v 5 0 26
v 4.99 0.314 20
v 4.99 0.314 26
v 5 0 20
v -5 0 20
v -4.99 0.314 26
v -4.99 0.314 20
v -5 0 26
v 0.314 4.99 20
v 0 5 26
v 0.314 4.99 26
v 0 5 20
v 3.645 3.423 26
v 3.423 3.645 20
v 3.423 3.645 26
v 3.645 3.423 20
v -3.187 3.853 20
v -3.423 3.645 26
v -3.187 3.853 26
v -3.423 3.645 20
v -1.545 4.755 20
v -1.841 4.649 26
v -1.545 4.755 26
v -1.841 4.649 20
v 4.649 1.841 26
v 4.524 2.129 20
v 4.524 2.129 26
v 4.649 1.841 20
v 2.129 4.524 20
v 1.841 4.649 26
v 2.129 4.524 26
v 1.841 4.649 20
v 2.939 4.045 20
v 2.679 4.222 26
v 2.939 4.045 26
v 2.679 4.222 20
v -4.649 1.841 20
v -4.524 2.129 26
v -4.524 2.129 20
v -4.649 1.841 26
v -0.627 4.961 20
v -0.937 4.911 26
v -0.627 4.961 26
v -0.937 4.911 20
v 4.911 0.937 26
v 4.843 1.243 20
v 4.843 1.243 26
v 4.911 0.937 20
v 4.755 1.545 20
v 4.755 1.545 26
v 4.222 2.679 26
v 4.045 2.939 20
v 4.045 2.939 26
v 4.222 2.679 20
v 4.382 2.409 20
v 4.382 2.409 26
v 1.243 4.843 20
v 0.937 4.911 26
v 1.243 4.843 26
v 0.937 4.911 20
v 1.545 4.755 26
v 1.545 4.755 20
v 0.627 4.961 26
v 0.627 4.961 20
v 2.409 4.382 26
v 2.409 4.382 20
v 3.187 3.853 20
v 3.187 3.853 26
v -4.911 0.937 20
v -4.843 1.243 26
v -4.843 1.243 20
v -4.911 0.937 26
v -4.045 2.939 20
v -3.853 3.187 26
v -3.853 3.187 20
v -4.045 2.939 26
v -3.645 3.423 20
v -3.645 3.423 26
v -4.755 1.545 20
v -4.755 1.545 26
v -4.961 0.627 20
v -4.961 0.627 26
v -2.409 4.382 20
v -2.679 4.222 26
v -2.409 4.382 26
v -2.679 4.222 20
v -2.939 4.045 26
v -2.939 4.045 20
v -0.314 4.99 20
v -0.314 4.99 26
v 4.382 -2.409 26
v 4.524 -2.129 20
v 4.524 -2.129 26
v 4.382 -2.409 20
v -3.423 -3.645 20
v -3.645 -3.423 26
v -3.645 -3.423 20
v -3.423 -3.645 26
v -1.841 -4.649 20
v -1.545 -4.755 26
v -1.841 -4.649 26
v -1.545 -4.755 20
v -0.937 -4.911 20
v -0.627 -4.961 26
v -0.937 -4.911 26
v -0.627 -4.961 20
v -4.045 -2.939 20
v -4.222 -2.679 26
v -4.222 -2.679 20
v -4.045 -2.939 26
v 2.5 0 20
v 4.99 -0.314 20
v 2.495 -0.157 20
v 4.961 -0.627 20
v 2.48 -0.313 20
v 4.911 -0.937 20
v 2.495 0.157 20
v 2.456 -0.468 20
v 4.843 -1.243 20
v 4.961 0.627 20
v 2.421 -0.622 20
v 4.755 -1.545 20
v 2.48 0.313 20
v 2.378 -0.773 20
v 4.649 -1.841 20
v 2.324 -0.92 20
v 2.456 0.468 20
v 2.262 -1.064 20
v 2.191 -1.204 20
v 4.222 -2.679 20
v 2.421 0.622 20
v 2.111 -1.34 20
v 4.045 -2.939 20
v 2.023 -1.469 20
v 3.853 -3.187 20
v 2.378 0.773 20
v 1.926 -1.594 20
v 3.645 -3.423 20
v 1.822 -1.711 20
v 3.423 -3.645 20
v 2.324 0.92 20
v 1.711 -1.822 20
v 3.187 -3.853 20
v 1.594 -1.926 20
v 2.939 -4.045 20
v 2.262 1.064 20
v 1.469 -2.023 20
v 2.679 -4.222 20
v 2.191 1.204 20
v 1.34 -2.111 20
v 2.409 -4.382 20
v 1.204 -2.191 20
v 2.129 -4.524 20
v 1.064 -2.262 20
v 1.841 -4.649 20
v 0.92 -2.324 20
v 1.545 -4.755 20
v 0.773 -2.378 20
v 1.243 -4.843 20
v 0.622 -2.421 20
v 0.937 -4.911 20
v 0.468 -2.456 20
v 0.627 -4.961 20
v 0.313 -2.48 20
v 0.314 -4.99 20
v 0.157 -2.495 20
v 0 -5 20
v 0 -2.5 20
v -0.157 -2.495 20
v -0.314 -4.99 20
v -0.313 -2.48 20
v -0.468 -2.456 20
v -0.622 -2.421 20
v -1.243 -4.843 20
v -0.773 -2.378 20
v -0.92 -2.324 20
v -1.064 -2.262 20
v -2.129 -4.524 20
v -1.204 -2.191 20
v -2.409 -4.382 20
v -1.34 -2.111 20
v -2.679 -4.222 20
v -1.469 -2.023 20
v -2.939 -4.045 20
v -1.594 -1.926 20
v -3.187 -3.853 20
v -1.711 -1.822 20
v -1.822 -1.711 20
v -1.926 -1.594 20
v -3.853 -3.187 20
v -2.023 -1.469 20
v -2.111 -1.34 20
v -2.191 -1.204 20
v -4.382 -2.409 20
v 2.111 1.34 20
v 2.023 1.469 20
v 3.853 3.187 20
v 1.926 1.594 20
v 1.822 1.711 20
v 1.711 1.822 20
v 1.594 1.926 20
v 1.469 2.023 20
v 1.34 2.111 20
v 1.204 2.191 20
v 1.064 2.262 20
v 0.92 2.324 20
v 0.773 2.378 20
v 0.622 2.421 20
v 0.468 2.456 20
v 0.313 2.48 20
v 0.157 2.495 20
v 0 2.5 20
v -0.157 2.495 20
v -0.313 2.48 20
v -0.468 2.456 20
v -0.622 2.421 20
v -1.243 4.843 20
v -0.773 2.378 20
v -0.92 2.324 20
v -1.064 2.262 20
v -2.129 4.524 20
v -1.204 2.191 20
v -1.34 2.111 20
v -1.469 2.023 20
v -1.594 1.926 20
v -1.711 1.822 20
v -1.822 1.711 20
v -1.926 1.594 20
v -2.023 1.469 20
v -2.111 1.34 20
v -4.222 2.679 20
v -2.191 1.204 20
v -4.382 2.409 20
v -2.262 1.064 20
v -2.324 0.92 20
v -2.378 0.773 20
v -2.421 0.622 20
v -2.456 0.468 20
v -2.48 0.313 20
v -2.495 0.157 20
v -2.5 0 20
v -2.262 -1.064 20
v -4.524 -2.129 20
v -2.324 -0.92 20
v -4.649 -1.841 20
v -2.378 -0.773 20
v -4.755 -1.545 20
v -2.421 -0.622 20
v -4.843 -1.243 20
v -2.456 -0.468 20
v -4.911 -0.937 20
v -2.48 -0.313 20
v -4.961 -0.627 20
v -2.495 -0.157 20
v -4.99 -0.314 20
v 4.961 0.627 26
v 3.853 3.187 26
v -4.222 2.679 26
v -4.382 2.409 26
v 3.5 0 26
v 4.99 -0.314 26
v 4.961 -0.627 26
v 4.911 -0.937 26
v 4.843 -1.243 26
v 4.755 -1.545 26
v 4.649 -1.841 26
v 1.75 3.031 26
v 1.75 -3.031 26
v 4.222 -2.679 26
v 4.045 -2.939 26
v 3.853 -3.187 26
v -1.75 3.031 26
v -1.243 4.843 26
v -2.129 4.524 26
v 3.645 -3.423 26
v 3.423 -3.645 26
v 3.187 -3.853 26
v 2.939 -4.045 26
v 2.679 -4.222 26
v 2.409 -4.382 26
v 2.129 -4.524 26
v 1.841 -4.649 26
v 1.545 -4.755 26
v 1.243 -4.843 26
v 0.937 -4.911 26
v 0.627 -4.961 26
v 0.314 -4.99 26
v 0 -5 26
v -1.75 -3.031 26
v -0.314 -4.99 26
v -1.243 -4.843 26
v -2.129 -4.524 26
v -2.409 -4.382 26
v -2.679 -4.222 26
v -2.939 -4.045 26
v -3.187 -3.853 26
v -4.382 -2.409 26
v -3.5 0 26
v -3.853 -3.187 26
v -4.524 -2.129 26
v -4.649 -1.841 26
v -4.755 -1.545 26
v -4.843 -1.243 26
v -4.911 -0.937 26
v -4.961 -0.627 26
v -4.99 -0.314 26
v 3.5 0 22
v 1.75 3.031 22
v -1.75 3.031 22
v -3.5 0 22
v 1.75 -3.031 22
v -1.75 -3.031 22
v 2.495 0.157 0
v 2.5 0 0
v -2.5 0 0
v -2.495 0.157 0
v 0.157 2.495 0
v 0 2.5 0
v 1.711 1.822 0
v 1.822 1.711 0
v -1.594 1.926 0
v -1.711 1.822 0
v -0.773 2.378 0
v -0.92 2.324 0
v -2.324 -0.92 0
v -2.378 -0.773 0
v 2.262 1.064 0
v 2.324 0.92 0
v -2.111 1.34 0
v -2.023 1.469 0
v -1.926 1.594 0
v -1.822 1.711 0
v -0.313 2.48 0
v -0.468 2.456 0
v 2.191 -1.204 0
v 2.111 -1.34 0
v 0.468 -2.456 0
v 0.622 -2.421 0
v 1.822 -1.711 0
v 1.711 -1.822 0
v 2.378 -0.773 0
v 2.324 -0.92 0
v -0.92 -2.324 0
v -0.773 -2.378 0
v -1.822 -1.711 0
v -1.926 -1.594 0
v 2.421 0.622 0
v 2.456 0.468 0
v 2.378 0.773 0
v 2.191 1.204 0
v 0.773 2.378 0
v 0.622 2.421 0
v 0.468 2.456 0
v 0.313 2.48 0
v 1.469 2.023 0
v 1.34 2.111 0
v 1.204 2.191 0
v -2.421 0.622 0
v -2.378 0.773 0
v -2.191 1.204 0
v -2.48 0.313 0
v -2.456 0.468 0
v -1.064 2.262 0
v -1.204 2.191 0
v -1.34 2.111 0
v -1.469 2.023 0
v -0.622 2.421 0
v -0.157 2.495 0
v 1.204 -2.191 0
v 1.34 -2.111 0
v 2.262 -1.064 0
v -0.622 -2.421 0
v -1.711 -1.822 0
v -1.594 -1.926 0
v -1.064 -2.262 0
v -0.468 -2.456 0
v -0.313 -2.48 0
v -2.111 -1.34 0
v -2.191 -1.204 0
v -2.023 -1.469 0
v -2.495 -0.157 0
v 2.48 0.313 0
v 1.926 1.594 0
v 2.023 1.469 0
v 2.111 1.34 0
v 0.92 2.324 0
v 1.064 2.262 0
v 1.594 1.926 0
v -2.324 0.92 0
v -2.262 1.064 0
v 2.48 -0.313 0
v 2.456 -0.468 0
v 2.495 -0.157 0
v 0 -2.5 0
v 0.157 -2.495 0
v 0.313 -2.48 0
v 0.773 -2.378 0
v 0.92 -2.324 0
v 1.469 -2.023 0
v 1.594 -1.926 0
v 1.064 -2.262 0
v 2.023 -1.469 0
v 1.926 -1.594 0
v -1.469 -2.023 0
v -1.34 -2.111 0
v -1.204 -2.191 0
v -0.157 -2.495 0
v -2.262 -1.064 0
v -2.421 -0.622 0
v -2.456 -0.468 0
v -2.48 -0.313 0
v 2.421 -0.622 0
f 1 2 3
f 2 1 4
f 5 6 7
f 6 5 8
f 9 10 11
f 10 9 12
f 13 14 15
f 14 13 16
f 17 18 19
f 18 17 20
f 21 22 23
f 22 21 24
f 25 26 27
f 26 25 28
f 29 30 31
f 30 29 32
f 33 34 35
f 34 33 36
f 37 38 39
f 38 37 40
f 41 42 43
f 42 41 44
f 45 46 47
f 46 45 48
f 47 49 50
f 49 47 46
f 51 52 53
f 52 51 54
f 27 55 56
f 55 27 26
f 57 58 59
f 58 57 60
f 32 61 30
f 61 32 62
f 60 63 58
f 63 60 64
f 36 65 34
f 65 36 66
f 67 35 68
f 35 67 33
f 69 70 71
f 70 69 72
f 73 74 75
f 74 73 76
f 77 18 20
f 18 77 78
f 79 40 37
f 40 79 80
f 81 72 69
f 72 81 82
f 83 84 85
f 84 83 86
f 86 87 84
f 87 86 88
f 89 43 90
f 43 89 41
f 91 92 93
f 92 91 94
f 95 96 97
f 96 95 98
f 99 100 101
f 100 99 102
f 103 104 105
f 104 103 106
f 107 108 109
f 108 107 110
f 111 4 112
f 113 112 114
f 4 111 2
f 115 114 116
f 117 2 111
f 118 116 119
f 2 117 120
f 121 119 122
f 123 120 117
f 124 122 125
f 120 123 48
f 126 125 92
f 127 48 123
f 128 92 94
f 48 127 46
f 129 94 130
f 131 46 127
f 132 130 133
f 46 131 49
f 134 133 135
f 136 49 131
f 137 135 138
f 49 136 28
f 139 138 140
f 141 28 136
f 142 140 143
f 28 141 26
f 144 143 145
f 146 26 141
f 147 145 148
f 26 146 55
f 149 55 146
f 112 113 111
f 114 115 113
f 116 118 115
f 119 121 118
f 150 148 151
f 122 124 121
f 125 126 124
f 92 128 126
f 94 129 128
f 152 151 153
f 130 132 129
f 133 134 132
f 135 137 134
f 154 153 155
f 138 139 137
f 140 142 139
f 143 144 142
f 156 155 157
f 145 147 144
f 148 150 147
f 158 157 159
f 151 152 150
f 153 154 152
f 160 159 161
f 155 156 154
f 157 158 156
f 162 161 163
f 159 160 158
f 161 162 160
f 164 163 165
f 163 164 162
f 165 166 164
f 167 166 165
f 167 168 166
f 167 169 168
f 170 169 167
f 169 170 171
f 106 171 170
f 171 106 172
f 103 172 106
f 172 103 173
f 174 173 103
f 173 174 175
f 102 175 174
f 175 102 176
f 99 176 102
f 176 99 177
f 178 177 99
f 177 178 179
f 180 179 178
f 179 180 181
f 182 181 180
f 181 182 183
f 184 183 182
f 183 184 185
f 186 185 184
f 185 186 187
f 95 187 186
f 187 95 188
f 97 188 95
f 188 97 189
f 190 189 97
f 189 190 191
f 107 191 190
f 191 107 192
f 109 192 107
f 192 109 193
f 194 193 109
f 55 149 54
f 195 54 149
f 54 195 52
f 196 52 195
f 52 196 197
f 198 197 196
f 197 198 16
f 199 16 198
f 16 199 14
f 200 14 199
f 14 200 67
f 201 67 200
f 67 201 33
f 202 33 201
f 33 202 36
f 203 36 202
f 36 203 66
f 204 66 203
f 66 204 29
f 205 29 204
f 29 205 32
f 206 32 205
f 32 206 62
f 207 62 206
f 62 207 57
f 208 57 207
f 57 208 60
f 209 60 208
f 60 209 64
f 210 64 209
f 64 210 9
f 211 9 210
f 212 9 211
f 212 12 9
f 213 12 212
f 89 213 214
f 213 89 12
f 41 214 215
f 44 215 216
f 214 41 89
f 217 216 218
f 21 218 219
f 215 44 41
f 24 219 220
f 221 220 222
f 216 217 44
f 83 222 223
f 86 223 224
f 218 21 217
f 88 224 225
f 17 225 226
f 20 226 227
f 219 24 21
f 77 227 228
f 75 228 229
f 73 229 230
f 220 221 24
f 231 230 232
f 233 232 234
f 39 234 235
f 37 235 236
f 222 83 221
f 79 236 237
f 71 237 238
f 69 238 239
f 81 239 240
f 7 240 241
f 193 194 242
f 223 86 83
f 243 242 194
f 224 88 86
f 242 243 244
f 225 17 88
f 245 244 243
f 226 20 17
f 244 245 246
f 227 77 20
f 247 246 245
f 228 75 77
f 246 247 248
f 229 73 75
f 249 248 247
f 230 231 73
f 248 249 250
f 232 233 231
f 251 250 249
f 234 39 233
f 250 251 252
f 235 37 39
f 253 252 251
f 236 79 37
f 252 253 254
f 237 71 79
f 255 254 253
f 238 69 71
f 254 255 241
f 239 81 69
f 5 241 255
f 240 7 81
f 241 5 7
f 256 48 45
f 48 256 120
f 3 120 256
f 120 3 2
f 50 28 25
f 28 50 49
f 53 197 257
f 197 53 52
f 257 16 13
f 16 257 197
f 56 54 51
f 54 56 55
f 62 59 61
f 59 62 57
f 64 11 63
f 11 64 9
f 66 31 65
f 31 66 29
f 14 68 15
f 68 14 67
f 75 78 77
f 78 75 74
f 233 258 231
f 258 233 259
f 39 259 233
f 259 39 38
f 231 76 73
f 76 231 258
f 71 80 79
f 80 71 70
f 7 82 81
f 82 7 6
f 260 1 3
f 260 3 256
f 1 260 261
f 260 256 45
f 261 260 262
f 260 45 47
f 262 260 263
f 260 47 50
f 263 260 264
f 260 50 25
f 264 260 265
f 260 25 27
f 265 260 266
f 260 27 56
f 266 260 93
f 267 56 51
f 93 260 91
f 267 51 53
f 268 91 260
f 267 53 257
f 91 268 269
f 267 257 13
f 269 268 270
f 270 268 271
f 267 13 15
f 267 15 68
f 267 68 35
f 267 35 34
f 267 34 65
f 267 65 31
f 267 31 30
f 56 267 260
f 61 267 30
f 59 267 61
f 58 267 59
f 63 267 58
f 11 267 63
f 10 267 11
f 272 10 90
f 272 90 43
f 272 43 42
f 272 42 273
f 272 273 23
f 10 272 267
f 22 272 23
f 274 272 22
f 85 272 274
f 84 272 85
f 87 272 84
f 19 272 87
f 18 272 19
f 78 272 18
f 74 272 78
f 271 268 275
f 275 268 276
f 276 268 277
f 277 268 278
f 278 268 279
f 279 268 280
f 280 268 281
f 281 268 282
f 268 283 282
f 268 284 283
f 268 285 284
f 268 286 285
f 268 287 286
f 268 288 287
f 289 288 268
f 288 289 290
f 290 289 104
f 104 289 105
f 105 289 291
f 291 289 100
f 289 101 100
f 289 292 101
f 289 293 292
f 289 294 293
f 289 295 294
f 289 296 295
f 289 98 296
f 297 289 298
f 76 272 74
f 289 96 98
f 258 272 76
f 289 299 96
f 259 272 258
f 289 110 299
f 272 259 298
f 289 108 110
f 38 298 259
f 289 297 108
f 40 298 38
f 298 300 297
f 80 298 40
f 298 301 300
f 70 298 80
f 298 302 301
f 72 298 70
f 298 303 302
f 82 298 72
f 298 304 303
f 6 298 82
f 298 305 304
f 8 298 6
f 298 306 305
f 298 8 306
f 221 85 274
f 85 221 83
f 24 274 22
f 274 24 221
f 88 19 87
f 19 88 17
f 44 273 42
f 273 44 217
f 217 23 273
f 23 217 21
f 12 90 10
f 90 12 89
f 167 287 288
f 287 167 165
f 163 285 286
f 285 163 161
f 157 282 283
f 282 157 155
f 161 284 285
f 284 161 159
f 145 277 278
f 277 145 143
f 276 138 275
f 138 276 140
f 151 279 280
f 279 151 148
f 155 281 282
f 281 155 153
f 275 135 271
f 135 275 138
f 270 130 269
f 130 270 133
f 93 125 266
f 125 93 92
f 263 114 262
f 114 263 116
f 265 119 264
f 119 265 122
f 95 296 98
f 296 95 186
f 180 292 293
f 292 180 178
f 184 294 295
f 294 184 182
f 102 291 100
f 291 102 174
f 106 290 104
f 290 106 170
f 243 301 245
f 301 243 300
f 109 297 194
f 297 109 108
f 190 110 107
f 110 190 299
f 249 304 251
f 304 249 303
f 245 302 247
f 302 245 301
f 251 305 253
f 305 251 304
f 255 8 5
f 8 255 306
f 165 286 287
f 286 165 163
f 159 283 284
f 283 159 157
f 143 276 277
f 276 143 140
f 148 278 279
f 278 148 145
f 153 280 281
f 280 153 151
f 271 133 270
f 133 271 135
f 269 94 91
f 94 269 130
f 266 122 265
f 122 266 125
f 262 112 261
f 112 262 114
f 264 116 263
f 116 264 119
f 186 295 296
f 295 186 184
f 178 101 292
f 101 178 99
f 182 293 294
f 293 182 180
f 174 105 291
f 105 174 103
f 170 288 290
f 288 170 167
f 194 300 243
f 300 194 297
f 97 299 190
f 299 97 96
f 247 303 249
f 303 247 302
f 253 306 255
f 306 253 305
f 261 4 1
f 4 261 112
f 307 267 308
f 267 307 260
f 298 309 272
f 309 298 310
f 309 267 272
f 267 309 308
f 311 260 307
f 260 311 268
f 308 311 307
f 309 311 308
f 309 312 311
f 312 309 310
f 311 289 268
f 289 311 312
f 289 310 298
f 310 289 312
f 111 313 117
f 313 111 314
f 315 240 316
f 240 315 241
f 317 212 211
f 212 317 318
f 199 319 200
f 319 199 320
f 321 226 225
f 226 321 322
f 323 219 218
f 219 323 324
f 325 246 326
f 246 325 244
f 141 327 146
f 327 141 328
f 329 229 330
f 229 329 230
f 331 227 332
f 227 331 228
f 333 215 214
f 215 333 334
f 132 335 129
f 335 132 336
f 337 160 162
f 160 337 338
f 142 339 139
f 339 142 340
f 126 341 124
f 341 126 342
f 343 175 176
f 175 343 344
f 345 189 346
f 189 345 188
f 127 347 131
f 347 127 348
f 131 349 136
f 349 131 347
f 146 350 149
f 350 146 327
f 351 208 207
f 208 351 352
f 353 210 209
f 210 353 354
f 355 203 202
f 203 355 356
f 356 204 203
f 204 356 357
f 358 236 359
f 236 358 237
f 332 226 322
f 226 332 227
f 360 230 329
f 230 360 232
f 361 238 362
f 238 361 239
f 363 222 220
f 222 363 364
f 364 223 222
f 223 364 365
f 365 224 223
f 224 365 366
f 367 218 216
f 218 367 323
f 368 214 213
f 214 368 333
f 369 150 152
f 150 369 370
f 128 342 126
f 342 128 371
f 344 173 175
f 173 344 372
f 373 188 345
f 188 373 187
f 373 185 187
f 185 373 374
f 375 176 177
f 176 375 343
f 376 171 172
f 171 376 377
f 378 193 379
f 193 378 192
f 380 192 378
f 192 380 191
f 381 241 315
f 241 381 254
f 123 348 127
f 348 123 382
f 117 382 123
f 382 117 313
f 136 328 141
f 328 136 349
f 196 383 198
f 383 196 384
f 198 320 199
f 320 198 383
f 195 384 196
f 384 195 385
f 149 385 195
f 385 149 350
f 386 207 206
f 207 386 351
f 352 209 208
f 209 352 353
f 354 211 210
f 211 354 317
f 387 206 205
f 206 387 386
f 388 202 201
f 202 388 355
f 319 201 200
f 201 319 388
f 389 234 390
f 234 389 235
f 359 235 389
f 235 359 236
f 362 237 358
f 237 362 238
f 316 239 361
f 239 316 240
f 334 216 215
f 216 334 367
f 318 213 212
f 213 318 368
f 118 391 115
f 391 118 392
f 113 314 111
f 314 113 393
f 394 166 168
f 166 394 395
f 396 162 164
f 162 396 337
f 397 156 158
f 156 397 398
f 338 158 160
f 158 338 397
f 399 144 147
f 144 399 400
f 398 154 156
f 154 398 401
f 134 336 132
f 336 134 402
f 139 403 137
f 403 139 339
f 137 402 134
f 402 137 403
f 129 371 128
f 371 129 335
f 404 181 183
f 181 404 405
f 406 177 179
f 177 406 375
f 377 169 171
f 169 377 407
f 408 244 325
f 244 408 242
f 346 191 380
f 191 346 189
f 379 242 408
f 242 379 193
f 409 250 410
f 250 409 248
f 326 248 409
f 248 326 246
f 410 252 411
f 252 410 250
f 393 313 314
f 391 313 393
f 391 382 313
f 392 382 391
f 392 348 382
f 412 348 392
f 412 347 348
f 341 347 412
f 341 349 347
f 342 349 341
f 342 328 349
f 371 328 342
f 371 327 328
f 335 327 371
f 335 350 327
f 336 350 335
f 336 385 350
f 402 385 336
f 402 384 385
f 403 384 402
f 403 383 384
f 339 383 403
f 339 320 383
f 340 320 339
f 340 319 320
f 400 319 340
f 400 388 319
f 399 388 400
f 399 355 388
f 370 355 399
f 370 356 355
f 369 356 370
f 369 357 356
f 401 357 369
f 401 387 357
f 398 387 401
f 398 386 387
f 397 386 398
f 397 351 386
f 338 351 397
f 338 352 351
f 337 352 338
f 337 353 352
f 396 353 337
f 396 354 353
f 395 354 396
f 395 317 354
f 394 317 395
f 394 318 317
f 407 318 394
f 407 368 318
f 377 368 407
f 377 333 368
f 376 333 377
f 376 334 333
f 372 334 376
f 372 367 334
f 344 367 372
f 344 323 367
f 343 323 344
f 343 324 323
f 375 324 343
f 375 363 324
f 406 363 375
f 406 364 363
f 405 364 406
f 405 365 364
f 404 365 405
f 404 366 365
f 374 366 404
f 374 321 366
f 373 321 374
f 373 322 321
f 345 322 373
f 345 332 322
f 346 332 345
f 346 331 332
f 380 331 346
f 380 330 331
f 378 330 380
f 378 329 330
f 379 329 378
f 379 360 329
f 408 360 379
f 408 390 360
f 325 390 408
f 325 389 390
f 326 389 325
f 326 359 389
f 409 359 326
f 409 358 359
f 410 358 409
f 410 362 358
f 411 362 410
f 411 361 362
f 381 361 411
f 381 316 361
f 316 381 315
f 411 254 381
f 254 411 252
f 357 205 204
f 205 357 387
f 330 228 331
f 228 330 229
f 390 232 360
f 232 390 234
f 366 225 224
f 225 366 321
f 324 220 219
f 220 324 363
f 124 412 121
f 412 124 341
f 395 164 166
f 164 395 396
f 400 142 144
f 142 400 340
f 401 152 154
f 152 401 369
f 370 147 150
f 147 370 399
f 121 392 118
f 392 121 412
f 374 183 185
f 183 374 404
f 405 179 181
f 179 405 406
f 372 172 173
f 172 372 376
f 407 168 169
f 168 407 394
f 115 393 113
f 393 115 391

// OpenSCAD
$fn = 100; // Smoothness

module hex_socket_bolt(head_d=10, head_h=6, shaft_d=5, shaft_h=20, hex_r=3.5) {
    union() {
        // Shaft
        cylinder(h=shaft_h, d=shaft_d);

        // Head
        translate([0, 0, shaft_h])
            difference() {
                cylinder(h=head_h, d=head_d);
                // Hex socket
                translate([0, 0, head_h/3])
                    cylinder(h=head_h, r=hex_r, $fn=6);
            }
    }
}

// Call the bolt module
hex_socket_bolt();
